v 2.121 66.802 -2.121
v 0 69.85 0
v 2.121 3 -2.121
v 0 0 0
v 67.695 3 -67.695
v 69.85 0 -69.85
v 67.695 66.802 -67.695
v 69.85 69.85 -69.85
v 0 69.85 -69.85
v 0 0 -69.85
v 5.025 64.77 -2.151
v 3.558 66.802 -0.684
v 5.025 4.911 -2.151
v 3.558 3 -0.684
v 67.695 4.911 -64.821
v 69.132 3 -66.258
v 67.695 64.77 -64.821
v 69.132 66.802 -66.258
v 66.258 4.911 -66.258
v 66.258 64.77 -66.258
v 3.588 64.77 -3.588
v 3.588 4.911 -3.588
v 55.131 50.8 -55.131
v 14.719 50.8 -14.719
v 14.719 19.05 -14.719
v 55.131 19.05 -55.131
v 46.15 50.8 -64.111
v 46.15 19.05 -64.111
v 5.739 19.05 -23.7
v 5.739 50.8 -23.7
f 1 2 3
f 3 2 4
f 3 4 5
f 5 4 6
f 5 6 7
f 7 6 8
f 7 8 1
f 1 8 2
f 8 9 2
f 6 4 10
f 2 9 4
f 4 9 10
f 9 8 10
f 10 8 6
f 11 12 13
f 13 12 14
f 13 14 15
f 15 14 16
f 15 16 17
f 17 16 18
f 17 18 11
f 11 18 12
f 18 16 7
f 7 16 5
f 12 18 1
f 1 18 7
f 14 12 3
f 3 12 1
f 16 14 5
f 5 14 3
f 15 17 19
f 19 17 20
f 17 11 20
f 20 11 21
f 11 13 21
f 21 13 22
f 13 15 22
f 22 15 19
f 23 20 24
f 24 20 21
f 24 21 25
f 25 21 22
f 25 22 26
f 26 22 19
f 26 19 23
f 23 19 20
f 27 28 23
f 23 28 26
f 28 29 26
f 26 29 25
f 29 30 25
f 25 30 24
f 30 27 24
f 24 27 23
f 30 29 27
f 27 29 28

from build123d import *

# Parameters (mm, degrees)
SKETCH1_W           = 69.85
SKETCH1_H           = 69.85
BOSS_EXTRUDE1_DEPTH = 69.85
CUT_EXTRUDE2_DEPTH  = 100
SKETCH3_W           = 92.734817332
SKETCH3_H           = 63.802
SKETCH3_W_2         = 88.628817955
SKETCH3_H_2         = 59.858884928
BOSS_EXTRUDE2_DEPTH = 2.032
SKETCH4_W           = 57.15
SKETCH4_H           = 31.75
CUT_EXTRUDE3_DEPTH  = 12.7


with BuildPart() as part:
    # Sketch1 → Boss-Extrude1 (new body)
    with BuildSketch(Plane(origin=(0, 0, 0), x_dir=(1, 0, 0), z_dir=(0, 1, 0))):
        with Locations((34.925, 34.925)):
            Rectangle(SKETCH1_W, SKETCH1_H)
    extrude(amount=BOSS_EXTRUDE1_DEPTH)

    # Sketch2 → Cut-Extrude2 (cut)
    with BuildSketch(Plane(origin=(0, 0, 0), x_dir=(0.707106781, 0, -0.707106781), z_dir=(0.707106781, 0, 0.707106781))):
        Polygon((98.782817332, 69.85), (98.782817332, 0), (49.391408666, 0), (0, 0), (0, 69.85), (49.391408666, 69.85), align=None)
    extrude(amount=CUT_EXTRUDE2_DEPTH, mode=Mode.SUBTRACT)

    # Sketch3 → Boss-Extrude2 (add)
    with BuildSketch(Plane(origin=(0, 0, 0), x_dir=(0.707106781, 0, -0.707106781), z_dir=(0.707106781, 0, 0.707106781))):
        with Locations((49.367408666, 34.901)):
            Rectangle(SKETCH3_W, SKETCH3_H)
        with Locations((49.388408355, 34.840557536)):
            Rectangle(SKETCH3_W_2, SKETCH3_H_2, mode=Mode.SUBTRACT)
    extrude(amount=BOSS_EXTRUDE2_DEPTH)

    # Sketch4 → Cut-Extrude3 (cut)
    with BuildSketch(Plane(origin=(0, 0, 0), x_dir=(0.707106781, 0, -0.707106781), z_dir=(0.707106781, 0, 0.707106781))):
        with Locations((49.391408666, 34.925)):
            Rectangle(SKETCH4_W, SKETCH4_H)
    extrude(amount=-CUT_EXTRUDE3_DEPTH, mode=Mode.SUBTRACT)


solid = part.part
